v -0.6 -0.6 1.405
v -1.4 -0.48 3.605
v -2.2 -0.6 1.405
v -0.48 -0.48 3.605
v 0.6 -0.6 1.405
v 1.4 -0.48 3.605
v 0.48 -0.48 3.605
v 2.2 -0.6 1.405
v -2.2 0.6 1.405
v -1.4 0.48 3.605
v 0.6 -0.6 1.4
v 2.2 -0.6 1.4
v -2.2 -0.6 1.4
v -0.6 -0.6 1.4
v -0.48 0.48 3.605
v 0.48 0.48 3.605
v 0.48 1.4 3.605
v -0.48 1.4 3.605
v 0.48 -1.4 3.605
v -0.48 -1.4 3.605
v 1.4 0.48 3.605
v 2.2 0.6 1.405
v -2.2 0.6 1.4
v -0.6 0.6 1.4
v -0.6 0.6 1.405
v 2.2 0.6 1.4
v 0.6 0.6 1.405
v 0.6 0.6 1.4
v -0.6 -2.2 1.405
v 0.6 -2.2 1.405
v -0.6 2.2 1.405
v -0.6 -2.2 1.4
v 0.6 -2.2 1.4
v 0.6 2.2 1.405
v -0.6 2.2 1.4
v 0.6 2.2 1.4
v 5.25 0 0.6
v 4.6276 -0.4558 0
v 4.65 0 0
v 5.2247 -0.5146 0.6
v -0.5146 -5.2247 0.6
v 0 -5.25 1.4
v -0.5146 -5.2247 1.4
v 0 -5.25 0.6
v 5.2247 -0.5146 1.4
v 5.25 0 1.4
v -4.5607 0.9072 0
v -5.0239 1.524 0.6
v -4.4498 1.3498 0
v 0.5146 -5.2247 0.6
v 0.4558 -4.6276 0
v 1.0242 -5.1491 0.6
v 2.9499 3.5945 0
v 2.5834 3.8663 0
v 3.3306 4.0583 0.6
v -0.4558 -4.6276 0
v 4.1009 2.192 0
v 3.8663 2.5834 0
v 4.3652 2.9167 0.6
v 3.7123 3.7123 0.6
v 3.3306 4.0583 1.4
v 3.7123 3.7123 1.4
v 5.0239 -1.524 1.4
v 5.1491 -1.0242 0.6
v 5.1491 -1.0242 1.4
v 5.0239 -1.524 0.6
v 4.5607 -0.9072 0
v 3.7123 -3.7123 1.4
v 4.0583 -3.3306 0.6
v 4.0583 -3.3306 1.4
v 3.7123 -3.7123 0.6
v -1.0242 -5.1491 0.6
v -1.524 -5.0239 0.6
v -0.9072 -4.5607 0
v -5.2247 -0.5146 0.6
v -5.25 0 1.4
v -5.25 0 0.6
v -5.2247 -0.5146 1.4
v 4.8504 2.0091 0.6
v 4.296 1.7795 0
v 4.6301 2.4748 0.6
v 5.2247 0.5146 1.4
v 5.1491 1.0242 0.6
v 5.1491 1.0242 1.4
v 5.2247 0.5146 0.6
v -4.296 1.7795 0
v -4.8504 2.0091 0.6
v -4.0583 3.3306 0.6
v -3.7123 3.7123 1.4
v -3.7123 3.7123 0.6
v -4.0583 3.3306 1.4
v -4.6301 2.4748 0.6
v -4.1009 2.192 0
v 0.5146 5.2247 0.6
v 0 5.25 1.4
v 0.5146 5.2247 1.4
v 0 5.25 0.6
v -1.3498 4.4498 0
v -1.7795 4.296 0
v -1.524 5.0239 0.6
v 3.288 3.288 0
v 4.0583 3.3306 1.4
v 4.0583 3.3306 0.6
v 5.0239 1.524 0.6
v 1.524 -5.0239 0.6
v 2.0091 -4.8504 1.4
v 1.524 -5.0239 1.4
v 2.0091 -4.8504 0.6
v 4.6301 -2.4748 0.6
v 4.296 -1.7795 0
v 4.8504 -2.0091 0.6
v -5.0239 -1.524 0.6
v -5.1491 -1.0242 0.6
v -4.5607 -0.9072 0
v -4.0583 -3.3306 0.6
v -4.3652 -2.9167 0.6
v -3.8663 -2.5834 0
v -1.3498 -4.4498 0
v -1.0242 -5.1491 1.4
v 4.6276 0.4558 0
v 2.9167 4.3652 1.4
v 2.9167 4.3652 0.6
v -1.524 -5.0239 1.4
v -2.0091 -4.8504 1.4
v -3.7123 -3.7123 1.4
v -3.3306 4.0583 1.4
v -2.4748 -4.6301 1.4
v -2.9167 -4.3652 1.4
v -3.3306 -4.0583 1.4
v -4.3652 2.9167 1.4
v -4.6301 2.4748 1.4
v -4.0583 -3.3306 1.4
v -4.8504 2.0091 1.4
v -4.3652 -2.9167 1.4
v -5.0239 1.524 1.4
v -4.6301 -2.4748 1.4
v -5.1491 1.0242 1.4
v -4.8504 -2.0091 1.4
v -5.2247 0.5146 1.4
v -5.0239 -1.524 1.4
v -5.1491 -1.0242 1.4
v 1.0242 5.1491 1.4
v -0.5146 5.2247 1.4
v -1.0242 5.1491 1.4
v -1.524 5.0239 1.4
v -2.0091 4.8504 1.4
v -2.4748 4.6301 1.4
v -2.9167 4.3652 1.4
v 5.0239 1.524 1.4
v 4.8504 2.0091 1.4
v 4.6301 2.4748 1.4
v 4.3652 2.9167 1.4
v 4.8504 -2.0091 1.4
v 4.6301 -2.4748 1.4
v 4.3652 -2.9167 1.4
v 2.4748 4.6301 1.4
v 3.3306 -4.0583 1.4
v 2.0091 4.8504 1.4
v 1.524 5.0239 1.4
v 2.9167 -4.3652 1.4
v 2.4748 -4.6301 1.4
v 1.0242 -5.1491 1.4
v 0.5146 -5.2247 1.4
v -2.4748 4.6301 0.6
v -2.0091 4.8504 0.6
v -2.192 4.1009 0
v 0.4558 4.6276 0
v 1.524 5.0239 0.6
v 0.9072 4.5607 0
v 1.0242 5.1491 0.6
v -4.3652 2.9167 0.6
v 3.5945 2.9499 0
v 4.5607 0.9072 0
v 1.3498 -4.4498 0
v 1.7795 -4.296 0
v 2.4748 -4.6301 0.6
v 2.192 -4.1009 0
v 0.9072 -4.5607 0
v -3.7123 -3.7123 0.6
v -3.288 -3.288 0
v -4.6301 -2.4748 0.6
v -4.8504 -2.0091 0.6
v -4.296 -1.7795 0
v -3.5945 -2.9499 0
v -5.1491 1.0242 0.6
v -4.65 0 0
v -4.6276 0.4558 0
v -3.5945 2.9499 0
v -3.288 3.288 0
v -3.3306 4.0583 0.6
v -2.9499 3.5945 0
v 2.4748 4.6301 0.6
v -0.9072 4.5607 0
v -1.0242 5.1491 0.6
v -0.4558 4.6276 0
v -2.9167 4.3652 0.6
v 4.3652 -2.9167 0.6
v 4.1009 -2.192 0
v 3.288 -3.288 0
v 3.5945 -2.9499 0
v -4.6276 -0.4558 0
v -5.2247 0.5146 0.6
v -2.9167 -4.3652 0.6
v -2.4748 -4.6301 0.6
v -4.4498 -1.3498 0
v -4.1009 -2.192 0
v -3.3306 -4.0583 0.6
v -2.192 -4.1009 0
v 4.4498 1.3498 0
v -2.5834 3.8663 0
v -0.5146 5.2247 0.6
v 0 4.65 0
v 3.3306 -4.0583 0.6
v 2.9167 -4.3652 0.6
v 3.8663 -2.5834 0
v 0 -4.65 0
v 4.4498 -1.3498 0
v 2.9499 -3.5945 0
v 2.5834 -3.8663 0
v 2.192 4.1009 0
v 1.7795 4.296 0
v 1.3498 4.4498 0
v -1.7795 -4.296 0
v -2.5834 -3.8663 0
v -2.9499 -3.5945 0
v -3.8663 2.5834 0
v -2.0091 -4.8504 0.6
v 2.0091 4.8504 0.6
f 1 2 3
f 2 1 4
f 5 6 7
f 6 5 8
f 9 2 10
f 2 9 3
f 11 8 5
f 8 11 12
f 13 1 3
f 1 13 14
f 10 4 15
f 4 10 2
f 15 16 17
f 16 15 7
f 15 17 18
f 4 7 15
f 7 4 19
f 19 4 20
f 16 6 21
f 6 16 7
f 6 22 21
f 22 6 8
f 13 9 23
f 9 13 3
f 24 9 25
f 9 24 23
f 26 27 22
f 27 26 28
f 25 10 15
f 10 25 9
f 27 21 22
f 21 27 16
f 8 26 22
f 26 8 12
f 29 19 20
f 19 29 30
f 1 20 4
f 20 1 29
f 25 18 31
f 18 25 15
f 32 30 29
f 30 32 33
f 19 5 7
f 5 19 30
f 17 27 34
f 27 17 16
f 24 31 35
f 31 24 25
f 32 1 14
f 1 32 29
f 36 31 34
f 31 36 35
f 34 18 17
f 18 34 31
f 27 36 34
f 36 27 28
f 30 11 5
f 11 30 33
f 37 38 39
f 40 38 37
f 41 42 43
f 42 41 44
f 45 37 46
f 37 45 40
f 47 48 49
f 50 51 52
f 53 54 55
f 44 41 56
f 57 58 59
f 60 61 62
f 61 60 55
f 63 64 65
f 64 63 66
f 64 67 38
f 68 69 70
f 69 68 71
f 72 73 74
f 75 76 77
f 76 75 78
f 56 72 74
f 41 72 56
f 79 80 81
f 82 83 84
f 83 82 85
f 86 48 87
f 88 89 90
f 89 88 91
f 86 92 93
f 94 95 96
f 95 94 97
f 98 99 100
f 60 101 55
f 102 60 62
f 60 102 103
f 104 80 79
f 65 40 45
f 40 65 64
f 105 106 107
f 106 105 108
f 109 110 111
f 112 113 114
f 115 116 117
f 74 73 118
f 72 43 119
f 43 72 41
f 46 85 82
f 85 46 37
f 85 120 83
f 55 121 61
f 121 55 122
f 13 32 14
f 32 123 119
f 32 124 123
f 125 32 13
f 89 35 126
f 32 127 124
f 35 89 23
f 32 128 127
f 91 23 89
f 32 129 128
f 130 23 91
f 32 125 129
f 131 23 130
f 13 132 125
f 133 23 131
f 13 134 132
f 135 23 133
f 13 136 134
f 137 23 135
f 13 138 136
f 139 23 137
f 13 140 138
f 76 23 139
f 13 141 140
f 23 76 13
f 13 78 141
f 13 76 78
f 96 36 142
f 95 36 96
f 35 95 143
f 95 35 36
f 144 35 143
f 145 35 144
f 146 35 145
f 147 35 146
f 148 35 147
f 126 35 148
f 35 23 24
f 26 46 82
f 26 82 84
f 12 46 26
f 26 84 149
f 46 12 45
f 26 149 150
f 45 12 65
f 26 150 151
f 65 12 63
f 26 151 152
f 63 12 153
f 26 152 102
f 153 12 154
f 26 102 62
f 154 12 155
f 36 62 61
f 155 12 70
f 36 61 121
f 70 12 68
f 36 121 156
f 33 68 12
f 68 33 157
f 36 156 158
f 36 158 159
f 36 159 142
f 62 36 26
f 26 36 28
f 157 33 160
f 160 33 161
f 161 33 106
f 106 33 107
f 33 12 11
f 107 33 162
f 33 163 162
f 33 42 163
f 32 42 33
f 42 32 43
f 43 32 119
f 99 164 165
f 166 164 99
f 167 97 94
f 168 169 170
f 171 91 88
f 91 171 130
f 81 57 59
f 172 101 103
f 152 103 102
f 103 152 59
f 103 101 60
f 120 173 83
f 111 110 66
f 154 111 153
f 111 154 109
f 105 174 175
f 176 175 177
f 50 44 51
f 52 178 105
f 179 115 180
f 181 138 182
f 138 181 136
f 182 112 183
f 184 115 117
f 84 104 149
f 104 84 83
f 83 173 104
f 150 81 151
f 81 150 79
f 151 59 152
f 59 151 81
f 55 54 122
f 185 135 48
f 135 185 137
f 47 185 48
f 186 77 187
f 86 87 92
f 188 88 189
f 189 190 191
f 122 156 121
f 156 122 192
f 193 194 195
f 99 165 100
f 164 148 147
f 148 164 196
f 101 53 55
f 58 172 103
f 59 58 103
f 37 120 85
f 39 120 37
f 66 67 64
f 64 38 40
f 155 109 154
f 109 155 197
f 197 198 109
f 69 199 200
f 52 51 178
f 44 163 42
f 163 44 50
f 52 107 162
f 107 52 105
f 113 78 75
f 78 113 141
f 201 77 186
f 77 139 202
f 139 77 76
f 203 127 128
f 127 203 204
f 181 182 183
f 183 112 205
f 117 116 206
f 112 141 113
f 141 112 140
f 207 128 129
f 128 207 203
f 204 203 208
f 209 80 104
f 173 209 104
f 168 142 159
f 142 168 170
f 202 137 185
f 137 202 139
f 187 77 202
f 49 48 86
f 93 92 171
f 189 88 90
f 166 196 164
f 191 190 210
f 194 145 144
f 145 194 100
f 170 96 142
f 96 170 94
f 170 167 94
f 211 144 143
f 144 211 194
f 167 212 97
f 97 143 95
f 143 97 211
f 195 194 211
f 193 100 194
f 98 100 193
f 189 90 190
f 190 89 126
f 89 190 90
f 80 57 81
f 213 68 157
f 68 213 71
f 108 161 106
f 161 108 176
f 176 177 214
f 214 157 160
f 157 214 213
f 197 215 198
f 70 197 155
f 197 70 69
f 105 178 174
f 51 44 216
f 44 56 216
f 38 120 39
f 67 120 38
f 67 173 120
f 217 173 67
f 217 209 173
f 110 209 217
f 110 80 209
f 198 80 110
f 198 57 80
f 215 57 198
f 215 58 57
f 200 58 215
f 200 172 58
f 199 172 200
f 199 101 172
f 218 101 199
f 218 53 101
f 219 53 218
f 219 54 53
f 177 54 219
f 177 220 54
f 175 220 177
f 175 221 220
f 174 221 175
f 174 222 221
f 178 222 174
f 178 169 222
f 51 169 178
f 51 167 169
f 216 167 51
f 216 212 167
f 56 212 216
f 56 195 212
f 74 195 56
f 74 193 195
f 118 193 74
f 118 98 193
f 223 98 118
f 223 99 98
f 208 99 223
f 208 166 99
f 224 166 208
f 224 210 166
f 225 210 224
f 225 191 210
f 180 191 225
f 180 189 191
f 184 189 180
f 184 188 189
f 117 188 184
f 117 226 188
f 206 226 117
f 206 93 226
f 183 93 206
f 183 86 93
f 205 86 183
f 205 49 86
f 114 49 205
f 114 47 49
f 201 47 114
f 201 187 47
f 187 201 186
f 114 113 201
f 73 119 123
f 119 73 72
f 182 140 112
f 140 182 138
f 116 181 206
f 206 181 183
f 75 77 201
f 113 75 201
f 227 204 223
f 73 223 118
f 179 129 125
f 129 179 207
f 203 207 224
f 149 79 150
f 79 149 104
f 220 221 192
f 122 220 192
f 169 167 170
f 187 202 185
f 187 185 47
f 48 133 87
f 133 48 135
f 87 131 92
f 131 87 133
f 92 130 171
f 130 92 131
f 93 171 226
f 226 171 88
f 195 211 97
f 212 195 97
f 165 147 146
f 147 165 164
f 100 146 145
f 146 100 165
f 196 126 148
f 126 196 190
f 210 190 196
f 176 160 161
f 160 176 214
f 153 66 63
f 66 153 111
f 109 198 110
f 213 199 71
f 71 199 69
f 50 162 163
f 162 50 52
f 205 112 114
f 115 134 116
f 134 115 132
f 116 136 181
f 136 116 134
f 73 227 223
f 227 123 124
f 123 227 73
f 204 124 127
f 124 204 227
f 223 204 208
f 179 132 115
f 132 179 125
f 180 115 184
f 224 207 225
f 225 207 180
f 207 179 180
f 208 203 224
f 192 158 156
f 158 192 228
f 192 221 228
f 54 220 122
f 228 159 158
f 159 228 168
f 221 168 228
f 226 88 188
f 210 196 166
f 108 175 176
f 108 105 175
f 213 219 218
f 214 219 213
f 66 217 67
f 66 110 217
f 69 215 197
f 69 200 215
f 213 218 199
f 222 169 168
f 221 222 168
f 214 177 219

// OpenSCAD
// ====================================================================
// PARAMETRIC SCREW COVER / CAP (OPTIMIZED FOR 3D PRINTING)
// ====================================================================
// This script generates a customizable screw cap designed to fit directly 
// into the screw head (e.g., PZ2/PH2) or a standard hole.
// It is designed to be printed flat on the build plate without supports.
// ====================================================================
$fn = 64;

// --- MAIN CAP DIMENSIONS (VISIBLE PART) ---
cap_diameter          = 10.5; // Outer diameter of the cap (mm) - match to your screw head or countersink
cap_thickness         = 1.4;  // Thickness of the visible cap cover (mm)
edge_chamfer          = 0.6;  // Chamfer/radius on the top outer edge (mm) for a smooth look

// --- MOUNTING STEM TYPE SELECTION ---
// "cross" - 4-blade wedge pressed directly into a PZ/PH screw drive
// "plug"  - Slightly tapered solid cylinder pressed into a stripped or round hole
mount_type            = "cross"; // ["cross", "plug"]

// --- CROSS MOUNT PARAMETERS (Default: PZ2) ---
cross_length          = 2.2;  // Insertion depth into the screw drive (mm)
cross_span_base       = 4.4;  // Total span of the blades at the base (mm)
cross_span_tip        = 2.8;  // Total span of the blades at the tip (mm)
cross_blade_thickness = 1.2;  // Thickness of a single cross blade (mm)

// --- PLUG MOUNT PARAMETERS (Alternative for thick nozzles / stripped screws) ---
plug_diameter_base    = 4.6;  // Diameter at the base/cap connection (mm)
plug_diameter_tip     = 3.8;  // Diameter at the insertion tip (mm)
plug_length           = 2.2;  // Total length of the plug (mm)

// ====================================================================
// MODEL GEOMETRY
// ====================================================================

// Generates the flat, visible part of the cap with a chamfered top edge
module cap_face() {
    hull() {
        cylinder(r = (cap_diameter / 2) - edge_chamfer, h = cap_thickness);
        translate([0, 0, edge_chamfer])
            cylinder(r = cap_diameter / 2, h = cap_thickness - edge_chamfer);
    }
}

// Generates a single tapered blade for the cross mount
module cross_blade(length, span_bottom, span_top, thick_bottom, thick_top) {
    hull() {
        cube([span_bottom, thick_bottom, 0.01], center = true);
        translate([0, 0, length])
            cube([span_top, thick_top, 0.01], center = true);
    }
}

// Combines two perpendicular blades to form the Phillips/Pozidriv cross
module cross_stem() {
    translate([0, 0, cap_thickness]) {
        cross_blade(cross_length, cross_span_base, cross_span_tip, cross_blade_thickness, cross_blade_thickness * 0.8);
        cross_blade(cross_length, cross_blade_thickness, cross_blade_thickness * 0.8, cross_span_base, cross_span_tip);
    }
}

// Generates the alternative tapered solid plug
module plug_stem() {
    translate([0, 0, cap_thickness])
        cylinder(d1 = plug_diameter_base, d2 = plug_diameter_tip, h = plug_length);
}

// ====================================================================
// FINAL ASSEMBLY
// ====================================================================
union() {
    // Render the main visible cap
    cap_face();
    
    // Render the chosen mounting mechanism
    if (mount_type == "cross") {
        cross_stem();
    } else if (mount_type == "plug") {
        plug_stem();
    }
}
